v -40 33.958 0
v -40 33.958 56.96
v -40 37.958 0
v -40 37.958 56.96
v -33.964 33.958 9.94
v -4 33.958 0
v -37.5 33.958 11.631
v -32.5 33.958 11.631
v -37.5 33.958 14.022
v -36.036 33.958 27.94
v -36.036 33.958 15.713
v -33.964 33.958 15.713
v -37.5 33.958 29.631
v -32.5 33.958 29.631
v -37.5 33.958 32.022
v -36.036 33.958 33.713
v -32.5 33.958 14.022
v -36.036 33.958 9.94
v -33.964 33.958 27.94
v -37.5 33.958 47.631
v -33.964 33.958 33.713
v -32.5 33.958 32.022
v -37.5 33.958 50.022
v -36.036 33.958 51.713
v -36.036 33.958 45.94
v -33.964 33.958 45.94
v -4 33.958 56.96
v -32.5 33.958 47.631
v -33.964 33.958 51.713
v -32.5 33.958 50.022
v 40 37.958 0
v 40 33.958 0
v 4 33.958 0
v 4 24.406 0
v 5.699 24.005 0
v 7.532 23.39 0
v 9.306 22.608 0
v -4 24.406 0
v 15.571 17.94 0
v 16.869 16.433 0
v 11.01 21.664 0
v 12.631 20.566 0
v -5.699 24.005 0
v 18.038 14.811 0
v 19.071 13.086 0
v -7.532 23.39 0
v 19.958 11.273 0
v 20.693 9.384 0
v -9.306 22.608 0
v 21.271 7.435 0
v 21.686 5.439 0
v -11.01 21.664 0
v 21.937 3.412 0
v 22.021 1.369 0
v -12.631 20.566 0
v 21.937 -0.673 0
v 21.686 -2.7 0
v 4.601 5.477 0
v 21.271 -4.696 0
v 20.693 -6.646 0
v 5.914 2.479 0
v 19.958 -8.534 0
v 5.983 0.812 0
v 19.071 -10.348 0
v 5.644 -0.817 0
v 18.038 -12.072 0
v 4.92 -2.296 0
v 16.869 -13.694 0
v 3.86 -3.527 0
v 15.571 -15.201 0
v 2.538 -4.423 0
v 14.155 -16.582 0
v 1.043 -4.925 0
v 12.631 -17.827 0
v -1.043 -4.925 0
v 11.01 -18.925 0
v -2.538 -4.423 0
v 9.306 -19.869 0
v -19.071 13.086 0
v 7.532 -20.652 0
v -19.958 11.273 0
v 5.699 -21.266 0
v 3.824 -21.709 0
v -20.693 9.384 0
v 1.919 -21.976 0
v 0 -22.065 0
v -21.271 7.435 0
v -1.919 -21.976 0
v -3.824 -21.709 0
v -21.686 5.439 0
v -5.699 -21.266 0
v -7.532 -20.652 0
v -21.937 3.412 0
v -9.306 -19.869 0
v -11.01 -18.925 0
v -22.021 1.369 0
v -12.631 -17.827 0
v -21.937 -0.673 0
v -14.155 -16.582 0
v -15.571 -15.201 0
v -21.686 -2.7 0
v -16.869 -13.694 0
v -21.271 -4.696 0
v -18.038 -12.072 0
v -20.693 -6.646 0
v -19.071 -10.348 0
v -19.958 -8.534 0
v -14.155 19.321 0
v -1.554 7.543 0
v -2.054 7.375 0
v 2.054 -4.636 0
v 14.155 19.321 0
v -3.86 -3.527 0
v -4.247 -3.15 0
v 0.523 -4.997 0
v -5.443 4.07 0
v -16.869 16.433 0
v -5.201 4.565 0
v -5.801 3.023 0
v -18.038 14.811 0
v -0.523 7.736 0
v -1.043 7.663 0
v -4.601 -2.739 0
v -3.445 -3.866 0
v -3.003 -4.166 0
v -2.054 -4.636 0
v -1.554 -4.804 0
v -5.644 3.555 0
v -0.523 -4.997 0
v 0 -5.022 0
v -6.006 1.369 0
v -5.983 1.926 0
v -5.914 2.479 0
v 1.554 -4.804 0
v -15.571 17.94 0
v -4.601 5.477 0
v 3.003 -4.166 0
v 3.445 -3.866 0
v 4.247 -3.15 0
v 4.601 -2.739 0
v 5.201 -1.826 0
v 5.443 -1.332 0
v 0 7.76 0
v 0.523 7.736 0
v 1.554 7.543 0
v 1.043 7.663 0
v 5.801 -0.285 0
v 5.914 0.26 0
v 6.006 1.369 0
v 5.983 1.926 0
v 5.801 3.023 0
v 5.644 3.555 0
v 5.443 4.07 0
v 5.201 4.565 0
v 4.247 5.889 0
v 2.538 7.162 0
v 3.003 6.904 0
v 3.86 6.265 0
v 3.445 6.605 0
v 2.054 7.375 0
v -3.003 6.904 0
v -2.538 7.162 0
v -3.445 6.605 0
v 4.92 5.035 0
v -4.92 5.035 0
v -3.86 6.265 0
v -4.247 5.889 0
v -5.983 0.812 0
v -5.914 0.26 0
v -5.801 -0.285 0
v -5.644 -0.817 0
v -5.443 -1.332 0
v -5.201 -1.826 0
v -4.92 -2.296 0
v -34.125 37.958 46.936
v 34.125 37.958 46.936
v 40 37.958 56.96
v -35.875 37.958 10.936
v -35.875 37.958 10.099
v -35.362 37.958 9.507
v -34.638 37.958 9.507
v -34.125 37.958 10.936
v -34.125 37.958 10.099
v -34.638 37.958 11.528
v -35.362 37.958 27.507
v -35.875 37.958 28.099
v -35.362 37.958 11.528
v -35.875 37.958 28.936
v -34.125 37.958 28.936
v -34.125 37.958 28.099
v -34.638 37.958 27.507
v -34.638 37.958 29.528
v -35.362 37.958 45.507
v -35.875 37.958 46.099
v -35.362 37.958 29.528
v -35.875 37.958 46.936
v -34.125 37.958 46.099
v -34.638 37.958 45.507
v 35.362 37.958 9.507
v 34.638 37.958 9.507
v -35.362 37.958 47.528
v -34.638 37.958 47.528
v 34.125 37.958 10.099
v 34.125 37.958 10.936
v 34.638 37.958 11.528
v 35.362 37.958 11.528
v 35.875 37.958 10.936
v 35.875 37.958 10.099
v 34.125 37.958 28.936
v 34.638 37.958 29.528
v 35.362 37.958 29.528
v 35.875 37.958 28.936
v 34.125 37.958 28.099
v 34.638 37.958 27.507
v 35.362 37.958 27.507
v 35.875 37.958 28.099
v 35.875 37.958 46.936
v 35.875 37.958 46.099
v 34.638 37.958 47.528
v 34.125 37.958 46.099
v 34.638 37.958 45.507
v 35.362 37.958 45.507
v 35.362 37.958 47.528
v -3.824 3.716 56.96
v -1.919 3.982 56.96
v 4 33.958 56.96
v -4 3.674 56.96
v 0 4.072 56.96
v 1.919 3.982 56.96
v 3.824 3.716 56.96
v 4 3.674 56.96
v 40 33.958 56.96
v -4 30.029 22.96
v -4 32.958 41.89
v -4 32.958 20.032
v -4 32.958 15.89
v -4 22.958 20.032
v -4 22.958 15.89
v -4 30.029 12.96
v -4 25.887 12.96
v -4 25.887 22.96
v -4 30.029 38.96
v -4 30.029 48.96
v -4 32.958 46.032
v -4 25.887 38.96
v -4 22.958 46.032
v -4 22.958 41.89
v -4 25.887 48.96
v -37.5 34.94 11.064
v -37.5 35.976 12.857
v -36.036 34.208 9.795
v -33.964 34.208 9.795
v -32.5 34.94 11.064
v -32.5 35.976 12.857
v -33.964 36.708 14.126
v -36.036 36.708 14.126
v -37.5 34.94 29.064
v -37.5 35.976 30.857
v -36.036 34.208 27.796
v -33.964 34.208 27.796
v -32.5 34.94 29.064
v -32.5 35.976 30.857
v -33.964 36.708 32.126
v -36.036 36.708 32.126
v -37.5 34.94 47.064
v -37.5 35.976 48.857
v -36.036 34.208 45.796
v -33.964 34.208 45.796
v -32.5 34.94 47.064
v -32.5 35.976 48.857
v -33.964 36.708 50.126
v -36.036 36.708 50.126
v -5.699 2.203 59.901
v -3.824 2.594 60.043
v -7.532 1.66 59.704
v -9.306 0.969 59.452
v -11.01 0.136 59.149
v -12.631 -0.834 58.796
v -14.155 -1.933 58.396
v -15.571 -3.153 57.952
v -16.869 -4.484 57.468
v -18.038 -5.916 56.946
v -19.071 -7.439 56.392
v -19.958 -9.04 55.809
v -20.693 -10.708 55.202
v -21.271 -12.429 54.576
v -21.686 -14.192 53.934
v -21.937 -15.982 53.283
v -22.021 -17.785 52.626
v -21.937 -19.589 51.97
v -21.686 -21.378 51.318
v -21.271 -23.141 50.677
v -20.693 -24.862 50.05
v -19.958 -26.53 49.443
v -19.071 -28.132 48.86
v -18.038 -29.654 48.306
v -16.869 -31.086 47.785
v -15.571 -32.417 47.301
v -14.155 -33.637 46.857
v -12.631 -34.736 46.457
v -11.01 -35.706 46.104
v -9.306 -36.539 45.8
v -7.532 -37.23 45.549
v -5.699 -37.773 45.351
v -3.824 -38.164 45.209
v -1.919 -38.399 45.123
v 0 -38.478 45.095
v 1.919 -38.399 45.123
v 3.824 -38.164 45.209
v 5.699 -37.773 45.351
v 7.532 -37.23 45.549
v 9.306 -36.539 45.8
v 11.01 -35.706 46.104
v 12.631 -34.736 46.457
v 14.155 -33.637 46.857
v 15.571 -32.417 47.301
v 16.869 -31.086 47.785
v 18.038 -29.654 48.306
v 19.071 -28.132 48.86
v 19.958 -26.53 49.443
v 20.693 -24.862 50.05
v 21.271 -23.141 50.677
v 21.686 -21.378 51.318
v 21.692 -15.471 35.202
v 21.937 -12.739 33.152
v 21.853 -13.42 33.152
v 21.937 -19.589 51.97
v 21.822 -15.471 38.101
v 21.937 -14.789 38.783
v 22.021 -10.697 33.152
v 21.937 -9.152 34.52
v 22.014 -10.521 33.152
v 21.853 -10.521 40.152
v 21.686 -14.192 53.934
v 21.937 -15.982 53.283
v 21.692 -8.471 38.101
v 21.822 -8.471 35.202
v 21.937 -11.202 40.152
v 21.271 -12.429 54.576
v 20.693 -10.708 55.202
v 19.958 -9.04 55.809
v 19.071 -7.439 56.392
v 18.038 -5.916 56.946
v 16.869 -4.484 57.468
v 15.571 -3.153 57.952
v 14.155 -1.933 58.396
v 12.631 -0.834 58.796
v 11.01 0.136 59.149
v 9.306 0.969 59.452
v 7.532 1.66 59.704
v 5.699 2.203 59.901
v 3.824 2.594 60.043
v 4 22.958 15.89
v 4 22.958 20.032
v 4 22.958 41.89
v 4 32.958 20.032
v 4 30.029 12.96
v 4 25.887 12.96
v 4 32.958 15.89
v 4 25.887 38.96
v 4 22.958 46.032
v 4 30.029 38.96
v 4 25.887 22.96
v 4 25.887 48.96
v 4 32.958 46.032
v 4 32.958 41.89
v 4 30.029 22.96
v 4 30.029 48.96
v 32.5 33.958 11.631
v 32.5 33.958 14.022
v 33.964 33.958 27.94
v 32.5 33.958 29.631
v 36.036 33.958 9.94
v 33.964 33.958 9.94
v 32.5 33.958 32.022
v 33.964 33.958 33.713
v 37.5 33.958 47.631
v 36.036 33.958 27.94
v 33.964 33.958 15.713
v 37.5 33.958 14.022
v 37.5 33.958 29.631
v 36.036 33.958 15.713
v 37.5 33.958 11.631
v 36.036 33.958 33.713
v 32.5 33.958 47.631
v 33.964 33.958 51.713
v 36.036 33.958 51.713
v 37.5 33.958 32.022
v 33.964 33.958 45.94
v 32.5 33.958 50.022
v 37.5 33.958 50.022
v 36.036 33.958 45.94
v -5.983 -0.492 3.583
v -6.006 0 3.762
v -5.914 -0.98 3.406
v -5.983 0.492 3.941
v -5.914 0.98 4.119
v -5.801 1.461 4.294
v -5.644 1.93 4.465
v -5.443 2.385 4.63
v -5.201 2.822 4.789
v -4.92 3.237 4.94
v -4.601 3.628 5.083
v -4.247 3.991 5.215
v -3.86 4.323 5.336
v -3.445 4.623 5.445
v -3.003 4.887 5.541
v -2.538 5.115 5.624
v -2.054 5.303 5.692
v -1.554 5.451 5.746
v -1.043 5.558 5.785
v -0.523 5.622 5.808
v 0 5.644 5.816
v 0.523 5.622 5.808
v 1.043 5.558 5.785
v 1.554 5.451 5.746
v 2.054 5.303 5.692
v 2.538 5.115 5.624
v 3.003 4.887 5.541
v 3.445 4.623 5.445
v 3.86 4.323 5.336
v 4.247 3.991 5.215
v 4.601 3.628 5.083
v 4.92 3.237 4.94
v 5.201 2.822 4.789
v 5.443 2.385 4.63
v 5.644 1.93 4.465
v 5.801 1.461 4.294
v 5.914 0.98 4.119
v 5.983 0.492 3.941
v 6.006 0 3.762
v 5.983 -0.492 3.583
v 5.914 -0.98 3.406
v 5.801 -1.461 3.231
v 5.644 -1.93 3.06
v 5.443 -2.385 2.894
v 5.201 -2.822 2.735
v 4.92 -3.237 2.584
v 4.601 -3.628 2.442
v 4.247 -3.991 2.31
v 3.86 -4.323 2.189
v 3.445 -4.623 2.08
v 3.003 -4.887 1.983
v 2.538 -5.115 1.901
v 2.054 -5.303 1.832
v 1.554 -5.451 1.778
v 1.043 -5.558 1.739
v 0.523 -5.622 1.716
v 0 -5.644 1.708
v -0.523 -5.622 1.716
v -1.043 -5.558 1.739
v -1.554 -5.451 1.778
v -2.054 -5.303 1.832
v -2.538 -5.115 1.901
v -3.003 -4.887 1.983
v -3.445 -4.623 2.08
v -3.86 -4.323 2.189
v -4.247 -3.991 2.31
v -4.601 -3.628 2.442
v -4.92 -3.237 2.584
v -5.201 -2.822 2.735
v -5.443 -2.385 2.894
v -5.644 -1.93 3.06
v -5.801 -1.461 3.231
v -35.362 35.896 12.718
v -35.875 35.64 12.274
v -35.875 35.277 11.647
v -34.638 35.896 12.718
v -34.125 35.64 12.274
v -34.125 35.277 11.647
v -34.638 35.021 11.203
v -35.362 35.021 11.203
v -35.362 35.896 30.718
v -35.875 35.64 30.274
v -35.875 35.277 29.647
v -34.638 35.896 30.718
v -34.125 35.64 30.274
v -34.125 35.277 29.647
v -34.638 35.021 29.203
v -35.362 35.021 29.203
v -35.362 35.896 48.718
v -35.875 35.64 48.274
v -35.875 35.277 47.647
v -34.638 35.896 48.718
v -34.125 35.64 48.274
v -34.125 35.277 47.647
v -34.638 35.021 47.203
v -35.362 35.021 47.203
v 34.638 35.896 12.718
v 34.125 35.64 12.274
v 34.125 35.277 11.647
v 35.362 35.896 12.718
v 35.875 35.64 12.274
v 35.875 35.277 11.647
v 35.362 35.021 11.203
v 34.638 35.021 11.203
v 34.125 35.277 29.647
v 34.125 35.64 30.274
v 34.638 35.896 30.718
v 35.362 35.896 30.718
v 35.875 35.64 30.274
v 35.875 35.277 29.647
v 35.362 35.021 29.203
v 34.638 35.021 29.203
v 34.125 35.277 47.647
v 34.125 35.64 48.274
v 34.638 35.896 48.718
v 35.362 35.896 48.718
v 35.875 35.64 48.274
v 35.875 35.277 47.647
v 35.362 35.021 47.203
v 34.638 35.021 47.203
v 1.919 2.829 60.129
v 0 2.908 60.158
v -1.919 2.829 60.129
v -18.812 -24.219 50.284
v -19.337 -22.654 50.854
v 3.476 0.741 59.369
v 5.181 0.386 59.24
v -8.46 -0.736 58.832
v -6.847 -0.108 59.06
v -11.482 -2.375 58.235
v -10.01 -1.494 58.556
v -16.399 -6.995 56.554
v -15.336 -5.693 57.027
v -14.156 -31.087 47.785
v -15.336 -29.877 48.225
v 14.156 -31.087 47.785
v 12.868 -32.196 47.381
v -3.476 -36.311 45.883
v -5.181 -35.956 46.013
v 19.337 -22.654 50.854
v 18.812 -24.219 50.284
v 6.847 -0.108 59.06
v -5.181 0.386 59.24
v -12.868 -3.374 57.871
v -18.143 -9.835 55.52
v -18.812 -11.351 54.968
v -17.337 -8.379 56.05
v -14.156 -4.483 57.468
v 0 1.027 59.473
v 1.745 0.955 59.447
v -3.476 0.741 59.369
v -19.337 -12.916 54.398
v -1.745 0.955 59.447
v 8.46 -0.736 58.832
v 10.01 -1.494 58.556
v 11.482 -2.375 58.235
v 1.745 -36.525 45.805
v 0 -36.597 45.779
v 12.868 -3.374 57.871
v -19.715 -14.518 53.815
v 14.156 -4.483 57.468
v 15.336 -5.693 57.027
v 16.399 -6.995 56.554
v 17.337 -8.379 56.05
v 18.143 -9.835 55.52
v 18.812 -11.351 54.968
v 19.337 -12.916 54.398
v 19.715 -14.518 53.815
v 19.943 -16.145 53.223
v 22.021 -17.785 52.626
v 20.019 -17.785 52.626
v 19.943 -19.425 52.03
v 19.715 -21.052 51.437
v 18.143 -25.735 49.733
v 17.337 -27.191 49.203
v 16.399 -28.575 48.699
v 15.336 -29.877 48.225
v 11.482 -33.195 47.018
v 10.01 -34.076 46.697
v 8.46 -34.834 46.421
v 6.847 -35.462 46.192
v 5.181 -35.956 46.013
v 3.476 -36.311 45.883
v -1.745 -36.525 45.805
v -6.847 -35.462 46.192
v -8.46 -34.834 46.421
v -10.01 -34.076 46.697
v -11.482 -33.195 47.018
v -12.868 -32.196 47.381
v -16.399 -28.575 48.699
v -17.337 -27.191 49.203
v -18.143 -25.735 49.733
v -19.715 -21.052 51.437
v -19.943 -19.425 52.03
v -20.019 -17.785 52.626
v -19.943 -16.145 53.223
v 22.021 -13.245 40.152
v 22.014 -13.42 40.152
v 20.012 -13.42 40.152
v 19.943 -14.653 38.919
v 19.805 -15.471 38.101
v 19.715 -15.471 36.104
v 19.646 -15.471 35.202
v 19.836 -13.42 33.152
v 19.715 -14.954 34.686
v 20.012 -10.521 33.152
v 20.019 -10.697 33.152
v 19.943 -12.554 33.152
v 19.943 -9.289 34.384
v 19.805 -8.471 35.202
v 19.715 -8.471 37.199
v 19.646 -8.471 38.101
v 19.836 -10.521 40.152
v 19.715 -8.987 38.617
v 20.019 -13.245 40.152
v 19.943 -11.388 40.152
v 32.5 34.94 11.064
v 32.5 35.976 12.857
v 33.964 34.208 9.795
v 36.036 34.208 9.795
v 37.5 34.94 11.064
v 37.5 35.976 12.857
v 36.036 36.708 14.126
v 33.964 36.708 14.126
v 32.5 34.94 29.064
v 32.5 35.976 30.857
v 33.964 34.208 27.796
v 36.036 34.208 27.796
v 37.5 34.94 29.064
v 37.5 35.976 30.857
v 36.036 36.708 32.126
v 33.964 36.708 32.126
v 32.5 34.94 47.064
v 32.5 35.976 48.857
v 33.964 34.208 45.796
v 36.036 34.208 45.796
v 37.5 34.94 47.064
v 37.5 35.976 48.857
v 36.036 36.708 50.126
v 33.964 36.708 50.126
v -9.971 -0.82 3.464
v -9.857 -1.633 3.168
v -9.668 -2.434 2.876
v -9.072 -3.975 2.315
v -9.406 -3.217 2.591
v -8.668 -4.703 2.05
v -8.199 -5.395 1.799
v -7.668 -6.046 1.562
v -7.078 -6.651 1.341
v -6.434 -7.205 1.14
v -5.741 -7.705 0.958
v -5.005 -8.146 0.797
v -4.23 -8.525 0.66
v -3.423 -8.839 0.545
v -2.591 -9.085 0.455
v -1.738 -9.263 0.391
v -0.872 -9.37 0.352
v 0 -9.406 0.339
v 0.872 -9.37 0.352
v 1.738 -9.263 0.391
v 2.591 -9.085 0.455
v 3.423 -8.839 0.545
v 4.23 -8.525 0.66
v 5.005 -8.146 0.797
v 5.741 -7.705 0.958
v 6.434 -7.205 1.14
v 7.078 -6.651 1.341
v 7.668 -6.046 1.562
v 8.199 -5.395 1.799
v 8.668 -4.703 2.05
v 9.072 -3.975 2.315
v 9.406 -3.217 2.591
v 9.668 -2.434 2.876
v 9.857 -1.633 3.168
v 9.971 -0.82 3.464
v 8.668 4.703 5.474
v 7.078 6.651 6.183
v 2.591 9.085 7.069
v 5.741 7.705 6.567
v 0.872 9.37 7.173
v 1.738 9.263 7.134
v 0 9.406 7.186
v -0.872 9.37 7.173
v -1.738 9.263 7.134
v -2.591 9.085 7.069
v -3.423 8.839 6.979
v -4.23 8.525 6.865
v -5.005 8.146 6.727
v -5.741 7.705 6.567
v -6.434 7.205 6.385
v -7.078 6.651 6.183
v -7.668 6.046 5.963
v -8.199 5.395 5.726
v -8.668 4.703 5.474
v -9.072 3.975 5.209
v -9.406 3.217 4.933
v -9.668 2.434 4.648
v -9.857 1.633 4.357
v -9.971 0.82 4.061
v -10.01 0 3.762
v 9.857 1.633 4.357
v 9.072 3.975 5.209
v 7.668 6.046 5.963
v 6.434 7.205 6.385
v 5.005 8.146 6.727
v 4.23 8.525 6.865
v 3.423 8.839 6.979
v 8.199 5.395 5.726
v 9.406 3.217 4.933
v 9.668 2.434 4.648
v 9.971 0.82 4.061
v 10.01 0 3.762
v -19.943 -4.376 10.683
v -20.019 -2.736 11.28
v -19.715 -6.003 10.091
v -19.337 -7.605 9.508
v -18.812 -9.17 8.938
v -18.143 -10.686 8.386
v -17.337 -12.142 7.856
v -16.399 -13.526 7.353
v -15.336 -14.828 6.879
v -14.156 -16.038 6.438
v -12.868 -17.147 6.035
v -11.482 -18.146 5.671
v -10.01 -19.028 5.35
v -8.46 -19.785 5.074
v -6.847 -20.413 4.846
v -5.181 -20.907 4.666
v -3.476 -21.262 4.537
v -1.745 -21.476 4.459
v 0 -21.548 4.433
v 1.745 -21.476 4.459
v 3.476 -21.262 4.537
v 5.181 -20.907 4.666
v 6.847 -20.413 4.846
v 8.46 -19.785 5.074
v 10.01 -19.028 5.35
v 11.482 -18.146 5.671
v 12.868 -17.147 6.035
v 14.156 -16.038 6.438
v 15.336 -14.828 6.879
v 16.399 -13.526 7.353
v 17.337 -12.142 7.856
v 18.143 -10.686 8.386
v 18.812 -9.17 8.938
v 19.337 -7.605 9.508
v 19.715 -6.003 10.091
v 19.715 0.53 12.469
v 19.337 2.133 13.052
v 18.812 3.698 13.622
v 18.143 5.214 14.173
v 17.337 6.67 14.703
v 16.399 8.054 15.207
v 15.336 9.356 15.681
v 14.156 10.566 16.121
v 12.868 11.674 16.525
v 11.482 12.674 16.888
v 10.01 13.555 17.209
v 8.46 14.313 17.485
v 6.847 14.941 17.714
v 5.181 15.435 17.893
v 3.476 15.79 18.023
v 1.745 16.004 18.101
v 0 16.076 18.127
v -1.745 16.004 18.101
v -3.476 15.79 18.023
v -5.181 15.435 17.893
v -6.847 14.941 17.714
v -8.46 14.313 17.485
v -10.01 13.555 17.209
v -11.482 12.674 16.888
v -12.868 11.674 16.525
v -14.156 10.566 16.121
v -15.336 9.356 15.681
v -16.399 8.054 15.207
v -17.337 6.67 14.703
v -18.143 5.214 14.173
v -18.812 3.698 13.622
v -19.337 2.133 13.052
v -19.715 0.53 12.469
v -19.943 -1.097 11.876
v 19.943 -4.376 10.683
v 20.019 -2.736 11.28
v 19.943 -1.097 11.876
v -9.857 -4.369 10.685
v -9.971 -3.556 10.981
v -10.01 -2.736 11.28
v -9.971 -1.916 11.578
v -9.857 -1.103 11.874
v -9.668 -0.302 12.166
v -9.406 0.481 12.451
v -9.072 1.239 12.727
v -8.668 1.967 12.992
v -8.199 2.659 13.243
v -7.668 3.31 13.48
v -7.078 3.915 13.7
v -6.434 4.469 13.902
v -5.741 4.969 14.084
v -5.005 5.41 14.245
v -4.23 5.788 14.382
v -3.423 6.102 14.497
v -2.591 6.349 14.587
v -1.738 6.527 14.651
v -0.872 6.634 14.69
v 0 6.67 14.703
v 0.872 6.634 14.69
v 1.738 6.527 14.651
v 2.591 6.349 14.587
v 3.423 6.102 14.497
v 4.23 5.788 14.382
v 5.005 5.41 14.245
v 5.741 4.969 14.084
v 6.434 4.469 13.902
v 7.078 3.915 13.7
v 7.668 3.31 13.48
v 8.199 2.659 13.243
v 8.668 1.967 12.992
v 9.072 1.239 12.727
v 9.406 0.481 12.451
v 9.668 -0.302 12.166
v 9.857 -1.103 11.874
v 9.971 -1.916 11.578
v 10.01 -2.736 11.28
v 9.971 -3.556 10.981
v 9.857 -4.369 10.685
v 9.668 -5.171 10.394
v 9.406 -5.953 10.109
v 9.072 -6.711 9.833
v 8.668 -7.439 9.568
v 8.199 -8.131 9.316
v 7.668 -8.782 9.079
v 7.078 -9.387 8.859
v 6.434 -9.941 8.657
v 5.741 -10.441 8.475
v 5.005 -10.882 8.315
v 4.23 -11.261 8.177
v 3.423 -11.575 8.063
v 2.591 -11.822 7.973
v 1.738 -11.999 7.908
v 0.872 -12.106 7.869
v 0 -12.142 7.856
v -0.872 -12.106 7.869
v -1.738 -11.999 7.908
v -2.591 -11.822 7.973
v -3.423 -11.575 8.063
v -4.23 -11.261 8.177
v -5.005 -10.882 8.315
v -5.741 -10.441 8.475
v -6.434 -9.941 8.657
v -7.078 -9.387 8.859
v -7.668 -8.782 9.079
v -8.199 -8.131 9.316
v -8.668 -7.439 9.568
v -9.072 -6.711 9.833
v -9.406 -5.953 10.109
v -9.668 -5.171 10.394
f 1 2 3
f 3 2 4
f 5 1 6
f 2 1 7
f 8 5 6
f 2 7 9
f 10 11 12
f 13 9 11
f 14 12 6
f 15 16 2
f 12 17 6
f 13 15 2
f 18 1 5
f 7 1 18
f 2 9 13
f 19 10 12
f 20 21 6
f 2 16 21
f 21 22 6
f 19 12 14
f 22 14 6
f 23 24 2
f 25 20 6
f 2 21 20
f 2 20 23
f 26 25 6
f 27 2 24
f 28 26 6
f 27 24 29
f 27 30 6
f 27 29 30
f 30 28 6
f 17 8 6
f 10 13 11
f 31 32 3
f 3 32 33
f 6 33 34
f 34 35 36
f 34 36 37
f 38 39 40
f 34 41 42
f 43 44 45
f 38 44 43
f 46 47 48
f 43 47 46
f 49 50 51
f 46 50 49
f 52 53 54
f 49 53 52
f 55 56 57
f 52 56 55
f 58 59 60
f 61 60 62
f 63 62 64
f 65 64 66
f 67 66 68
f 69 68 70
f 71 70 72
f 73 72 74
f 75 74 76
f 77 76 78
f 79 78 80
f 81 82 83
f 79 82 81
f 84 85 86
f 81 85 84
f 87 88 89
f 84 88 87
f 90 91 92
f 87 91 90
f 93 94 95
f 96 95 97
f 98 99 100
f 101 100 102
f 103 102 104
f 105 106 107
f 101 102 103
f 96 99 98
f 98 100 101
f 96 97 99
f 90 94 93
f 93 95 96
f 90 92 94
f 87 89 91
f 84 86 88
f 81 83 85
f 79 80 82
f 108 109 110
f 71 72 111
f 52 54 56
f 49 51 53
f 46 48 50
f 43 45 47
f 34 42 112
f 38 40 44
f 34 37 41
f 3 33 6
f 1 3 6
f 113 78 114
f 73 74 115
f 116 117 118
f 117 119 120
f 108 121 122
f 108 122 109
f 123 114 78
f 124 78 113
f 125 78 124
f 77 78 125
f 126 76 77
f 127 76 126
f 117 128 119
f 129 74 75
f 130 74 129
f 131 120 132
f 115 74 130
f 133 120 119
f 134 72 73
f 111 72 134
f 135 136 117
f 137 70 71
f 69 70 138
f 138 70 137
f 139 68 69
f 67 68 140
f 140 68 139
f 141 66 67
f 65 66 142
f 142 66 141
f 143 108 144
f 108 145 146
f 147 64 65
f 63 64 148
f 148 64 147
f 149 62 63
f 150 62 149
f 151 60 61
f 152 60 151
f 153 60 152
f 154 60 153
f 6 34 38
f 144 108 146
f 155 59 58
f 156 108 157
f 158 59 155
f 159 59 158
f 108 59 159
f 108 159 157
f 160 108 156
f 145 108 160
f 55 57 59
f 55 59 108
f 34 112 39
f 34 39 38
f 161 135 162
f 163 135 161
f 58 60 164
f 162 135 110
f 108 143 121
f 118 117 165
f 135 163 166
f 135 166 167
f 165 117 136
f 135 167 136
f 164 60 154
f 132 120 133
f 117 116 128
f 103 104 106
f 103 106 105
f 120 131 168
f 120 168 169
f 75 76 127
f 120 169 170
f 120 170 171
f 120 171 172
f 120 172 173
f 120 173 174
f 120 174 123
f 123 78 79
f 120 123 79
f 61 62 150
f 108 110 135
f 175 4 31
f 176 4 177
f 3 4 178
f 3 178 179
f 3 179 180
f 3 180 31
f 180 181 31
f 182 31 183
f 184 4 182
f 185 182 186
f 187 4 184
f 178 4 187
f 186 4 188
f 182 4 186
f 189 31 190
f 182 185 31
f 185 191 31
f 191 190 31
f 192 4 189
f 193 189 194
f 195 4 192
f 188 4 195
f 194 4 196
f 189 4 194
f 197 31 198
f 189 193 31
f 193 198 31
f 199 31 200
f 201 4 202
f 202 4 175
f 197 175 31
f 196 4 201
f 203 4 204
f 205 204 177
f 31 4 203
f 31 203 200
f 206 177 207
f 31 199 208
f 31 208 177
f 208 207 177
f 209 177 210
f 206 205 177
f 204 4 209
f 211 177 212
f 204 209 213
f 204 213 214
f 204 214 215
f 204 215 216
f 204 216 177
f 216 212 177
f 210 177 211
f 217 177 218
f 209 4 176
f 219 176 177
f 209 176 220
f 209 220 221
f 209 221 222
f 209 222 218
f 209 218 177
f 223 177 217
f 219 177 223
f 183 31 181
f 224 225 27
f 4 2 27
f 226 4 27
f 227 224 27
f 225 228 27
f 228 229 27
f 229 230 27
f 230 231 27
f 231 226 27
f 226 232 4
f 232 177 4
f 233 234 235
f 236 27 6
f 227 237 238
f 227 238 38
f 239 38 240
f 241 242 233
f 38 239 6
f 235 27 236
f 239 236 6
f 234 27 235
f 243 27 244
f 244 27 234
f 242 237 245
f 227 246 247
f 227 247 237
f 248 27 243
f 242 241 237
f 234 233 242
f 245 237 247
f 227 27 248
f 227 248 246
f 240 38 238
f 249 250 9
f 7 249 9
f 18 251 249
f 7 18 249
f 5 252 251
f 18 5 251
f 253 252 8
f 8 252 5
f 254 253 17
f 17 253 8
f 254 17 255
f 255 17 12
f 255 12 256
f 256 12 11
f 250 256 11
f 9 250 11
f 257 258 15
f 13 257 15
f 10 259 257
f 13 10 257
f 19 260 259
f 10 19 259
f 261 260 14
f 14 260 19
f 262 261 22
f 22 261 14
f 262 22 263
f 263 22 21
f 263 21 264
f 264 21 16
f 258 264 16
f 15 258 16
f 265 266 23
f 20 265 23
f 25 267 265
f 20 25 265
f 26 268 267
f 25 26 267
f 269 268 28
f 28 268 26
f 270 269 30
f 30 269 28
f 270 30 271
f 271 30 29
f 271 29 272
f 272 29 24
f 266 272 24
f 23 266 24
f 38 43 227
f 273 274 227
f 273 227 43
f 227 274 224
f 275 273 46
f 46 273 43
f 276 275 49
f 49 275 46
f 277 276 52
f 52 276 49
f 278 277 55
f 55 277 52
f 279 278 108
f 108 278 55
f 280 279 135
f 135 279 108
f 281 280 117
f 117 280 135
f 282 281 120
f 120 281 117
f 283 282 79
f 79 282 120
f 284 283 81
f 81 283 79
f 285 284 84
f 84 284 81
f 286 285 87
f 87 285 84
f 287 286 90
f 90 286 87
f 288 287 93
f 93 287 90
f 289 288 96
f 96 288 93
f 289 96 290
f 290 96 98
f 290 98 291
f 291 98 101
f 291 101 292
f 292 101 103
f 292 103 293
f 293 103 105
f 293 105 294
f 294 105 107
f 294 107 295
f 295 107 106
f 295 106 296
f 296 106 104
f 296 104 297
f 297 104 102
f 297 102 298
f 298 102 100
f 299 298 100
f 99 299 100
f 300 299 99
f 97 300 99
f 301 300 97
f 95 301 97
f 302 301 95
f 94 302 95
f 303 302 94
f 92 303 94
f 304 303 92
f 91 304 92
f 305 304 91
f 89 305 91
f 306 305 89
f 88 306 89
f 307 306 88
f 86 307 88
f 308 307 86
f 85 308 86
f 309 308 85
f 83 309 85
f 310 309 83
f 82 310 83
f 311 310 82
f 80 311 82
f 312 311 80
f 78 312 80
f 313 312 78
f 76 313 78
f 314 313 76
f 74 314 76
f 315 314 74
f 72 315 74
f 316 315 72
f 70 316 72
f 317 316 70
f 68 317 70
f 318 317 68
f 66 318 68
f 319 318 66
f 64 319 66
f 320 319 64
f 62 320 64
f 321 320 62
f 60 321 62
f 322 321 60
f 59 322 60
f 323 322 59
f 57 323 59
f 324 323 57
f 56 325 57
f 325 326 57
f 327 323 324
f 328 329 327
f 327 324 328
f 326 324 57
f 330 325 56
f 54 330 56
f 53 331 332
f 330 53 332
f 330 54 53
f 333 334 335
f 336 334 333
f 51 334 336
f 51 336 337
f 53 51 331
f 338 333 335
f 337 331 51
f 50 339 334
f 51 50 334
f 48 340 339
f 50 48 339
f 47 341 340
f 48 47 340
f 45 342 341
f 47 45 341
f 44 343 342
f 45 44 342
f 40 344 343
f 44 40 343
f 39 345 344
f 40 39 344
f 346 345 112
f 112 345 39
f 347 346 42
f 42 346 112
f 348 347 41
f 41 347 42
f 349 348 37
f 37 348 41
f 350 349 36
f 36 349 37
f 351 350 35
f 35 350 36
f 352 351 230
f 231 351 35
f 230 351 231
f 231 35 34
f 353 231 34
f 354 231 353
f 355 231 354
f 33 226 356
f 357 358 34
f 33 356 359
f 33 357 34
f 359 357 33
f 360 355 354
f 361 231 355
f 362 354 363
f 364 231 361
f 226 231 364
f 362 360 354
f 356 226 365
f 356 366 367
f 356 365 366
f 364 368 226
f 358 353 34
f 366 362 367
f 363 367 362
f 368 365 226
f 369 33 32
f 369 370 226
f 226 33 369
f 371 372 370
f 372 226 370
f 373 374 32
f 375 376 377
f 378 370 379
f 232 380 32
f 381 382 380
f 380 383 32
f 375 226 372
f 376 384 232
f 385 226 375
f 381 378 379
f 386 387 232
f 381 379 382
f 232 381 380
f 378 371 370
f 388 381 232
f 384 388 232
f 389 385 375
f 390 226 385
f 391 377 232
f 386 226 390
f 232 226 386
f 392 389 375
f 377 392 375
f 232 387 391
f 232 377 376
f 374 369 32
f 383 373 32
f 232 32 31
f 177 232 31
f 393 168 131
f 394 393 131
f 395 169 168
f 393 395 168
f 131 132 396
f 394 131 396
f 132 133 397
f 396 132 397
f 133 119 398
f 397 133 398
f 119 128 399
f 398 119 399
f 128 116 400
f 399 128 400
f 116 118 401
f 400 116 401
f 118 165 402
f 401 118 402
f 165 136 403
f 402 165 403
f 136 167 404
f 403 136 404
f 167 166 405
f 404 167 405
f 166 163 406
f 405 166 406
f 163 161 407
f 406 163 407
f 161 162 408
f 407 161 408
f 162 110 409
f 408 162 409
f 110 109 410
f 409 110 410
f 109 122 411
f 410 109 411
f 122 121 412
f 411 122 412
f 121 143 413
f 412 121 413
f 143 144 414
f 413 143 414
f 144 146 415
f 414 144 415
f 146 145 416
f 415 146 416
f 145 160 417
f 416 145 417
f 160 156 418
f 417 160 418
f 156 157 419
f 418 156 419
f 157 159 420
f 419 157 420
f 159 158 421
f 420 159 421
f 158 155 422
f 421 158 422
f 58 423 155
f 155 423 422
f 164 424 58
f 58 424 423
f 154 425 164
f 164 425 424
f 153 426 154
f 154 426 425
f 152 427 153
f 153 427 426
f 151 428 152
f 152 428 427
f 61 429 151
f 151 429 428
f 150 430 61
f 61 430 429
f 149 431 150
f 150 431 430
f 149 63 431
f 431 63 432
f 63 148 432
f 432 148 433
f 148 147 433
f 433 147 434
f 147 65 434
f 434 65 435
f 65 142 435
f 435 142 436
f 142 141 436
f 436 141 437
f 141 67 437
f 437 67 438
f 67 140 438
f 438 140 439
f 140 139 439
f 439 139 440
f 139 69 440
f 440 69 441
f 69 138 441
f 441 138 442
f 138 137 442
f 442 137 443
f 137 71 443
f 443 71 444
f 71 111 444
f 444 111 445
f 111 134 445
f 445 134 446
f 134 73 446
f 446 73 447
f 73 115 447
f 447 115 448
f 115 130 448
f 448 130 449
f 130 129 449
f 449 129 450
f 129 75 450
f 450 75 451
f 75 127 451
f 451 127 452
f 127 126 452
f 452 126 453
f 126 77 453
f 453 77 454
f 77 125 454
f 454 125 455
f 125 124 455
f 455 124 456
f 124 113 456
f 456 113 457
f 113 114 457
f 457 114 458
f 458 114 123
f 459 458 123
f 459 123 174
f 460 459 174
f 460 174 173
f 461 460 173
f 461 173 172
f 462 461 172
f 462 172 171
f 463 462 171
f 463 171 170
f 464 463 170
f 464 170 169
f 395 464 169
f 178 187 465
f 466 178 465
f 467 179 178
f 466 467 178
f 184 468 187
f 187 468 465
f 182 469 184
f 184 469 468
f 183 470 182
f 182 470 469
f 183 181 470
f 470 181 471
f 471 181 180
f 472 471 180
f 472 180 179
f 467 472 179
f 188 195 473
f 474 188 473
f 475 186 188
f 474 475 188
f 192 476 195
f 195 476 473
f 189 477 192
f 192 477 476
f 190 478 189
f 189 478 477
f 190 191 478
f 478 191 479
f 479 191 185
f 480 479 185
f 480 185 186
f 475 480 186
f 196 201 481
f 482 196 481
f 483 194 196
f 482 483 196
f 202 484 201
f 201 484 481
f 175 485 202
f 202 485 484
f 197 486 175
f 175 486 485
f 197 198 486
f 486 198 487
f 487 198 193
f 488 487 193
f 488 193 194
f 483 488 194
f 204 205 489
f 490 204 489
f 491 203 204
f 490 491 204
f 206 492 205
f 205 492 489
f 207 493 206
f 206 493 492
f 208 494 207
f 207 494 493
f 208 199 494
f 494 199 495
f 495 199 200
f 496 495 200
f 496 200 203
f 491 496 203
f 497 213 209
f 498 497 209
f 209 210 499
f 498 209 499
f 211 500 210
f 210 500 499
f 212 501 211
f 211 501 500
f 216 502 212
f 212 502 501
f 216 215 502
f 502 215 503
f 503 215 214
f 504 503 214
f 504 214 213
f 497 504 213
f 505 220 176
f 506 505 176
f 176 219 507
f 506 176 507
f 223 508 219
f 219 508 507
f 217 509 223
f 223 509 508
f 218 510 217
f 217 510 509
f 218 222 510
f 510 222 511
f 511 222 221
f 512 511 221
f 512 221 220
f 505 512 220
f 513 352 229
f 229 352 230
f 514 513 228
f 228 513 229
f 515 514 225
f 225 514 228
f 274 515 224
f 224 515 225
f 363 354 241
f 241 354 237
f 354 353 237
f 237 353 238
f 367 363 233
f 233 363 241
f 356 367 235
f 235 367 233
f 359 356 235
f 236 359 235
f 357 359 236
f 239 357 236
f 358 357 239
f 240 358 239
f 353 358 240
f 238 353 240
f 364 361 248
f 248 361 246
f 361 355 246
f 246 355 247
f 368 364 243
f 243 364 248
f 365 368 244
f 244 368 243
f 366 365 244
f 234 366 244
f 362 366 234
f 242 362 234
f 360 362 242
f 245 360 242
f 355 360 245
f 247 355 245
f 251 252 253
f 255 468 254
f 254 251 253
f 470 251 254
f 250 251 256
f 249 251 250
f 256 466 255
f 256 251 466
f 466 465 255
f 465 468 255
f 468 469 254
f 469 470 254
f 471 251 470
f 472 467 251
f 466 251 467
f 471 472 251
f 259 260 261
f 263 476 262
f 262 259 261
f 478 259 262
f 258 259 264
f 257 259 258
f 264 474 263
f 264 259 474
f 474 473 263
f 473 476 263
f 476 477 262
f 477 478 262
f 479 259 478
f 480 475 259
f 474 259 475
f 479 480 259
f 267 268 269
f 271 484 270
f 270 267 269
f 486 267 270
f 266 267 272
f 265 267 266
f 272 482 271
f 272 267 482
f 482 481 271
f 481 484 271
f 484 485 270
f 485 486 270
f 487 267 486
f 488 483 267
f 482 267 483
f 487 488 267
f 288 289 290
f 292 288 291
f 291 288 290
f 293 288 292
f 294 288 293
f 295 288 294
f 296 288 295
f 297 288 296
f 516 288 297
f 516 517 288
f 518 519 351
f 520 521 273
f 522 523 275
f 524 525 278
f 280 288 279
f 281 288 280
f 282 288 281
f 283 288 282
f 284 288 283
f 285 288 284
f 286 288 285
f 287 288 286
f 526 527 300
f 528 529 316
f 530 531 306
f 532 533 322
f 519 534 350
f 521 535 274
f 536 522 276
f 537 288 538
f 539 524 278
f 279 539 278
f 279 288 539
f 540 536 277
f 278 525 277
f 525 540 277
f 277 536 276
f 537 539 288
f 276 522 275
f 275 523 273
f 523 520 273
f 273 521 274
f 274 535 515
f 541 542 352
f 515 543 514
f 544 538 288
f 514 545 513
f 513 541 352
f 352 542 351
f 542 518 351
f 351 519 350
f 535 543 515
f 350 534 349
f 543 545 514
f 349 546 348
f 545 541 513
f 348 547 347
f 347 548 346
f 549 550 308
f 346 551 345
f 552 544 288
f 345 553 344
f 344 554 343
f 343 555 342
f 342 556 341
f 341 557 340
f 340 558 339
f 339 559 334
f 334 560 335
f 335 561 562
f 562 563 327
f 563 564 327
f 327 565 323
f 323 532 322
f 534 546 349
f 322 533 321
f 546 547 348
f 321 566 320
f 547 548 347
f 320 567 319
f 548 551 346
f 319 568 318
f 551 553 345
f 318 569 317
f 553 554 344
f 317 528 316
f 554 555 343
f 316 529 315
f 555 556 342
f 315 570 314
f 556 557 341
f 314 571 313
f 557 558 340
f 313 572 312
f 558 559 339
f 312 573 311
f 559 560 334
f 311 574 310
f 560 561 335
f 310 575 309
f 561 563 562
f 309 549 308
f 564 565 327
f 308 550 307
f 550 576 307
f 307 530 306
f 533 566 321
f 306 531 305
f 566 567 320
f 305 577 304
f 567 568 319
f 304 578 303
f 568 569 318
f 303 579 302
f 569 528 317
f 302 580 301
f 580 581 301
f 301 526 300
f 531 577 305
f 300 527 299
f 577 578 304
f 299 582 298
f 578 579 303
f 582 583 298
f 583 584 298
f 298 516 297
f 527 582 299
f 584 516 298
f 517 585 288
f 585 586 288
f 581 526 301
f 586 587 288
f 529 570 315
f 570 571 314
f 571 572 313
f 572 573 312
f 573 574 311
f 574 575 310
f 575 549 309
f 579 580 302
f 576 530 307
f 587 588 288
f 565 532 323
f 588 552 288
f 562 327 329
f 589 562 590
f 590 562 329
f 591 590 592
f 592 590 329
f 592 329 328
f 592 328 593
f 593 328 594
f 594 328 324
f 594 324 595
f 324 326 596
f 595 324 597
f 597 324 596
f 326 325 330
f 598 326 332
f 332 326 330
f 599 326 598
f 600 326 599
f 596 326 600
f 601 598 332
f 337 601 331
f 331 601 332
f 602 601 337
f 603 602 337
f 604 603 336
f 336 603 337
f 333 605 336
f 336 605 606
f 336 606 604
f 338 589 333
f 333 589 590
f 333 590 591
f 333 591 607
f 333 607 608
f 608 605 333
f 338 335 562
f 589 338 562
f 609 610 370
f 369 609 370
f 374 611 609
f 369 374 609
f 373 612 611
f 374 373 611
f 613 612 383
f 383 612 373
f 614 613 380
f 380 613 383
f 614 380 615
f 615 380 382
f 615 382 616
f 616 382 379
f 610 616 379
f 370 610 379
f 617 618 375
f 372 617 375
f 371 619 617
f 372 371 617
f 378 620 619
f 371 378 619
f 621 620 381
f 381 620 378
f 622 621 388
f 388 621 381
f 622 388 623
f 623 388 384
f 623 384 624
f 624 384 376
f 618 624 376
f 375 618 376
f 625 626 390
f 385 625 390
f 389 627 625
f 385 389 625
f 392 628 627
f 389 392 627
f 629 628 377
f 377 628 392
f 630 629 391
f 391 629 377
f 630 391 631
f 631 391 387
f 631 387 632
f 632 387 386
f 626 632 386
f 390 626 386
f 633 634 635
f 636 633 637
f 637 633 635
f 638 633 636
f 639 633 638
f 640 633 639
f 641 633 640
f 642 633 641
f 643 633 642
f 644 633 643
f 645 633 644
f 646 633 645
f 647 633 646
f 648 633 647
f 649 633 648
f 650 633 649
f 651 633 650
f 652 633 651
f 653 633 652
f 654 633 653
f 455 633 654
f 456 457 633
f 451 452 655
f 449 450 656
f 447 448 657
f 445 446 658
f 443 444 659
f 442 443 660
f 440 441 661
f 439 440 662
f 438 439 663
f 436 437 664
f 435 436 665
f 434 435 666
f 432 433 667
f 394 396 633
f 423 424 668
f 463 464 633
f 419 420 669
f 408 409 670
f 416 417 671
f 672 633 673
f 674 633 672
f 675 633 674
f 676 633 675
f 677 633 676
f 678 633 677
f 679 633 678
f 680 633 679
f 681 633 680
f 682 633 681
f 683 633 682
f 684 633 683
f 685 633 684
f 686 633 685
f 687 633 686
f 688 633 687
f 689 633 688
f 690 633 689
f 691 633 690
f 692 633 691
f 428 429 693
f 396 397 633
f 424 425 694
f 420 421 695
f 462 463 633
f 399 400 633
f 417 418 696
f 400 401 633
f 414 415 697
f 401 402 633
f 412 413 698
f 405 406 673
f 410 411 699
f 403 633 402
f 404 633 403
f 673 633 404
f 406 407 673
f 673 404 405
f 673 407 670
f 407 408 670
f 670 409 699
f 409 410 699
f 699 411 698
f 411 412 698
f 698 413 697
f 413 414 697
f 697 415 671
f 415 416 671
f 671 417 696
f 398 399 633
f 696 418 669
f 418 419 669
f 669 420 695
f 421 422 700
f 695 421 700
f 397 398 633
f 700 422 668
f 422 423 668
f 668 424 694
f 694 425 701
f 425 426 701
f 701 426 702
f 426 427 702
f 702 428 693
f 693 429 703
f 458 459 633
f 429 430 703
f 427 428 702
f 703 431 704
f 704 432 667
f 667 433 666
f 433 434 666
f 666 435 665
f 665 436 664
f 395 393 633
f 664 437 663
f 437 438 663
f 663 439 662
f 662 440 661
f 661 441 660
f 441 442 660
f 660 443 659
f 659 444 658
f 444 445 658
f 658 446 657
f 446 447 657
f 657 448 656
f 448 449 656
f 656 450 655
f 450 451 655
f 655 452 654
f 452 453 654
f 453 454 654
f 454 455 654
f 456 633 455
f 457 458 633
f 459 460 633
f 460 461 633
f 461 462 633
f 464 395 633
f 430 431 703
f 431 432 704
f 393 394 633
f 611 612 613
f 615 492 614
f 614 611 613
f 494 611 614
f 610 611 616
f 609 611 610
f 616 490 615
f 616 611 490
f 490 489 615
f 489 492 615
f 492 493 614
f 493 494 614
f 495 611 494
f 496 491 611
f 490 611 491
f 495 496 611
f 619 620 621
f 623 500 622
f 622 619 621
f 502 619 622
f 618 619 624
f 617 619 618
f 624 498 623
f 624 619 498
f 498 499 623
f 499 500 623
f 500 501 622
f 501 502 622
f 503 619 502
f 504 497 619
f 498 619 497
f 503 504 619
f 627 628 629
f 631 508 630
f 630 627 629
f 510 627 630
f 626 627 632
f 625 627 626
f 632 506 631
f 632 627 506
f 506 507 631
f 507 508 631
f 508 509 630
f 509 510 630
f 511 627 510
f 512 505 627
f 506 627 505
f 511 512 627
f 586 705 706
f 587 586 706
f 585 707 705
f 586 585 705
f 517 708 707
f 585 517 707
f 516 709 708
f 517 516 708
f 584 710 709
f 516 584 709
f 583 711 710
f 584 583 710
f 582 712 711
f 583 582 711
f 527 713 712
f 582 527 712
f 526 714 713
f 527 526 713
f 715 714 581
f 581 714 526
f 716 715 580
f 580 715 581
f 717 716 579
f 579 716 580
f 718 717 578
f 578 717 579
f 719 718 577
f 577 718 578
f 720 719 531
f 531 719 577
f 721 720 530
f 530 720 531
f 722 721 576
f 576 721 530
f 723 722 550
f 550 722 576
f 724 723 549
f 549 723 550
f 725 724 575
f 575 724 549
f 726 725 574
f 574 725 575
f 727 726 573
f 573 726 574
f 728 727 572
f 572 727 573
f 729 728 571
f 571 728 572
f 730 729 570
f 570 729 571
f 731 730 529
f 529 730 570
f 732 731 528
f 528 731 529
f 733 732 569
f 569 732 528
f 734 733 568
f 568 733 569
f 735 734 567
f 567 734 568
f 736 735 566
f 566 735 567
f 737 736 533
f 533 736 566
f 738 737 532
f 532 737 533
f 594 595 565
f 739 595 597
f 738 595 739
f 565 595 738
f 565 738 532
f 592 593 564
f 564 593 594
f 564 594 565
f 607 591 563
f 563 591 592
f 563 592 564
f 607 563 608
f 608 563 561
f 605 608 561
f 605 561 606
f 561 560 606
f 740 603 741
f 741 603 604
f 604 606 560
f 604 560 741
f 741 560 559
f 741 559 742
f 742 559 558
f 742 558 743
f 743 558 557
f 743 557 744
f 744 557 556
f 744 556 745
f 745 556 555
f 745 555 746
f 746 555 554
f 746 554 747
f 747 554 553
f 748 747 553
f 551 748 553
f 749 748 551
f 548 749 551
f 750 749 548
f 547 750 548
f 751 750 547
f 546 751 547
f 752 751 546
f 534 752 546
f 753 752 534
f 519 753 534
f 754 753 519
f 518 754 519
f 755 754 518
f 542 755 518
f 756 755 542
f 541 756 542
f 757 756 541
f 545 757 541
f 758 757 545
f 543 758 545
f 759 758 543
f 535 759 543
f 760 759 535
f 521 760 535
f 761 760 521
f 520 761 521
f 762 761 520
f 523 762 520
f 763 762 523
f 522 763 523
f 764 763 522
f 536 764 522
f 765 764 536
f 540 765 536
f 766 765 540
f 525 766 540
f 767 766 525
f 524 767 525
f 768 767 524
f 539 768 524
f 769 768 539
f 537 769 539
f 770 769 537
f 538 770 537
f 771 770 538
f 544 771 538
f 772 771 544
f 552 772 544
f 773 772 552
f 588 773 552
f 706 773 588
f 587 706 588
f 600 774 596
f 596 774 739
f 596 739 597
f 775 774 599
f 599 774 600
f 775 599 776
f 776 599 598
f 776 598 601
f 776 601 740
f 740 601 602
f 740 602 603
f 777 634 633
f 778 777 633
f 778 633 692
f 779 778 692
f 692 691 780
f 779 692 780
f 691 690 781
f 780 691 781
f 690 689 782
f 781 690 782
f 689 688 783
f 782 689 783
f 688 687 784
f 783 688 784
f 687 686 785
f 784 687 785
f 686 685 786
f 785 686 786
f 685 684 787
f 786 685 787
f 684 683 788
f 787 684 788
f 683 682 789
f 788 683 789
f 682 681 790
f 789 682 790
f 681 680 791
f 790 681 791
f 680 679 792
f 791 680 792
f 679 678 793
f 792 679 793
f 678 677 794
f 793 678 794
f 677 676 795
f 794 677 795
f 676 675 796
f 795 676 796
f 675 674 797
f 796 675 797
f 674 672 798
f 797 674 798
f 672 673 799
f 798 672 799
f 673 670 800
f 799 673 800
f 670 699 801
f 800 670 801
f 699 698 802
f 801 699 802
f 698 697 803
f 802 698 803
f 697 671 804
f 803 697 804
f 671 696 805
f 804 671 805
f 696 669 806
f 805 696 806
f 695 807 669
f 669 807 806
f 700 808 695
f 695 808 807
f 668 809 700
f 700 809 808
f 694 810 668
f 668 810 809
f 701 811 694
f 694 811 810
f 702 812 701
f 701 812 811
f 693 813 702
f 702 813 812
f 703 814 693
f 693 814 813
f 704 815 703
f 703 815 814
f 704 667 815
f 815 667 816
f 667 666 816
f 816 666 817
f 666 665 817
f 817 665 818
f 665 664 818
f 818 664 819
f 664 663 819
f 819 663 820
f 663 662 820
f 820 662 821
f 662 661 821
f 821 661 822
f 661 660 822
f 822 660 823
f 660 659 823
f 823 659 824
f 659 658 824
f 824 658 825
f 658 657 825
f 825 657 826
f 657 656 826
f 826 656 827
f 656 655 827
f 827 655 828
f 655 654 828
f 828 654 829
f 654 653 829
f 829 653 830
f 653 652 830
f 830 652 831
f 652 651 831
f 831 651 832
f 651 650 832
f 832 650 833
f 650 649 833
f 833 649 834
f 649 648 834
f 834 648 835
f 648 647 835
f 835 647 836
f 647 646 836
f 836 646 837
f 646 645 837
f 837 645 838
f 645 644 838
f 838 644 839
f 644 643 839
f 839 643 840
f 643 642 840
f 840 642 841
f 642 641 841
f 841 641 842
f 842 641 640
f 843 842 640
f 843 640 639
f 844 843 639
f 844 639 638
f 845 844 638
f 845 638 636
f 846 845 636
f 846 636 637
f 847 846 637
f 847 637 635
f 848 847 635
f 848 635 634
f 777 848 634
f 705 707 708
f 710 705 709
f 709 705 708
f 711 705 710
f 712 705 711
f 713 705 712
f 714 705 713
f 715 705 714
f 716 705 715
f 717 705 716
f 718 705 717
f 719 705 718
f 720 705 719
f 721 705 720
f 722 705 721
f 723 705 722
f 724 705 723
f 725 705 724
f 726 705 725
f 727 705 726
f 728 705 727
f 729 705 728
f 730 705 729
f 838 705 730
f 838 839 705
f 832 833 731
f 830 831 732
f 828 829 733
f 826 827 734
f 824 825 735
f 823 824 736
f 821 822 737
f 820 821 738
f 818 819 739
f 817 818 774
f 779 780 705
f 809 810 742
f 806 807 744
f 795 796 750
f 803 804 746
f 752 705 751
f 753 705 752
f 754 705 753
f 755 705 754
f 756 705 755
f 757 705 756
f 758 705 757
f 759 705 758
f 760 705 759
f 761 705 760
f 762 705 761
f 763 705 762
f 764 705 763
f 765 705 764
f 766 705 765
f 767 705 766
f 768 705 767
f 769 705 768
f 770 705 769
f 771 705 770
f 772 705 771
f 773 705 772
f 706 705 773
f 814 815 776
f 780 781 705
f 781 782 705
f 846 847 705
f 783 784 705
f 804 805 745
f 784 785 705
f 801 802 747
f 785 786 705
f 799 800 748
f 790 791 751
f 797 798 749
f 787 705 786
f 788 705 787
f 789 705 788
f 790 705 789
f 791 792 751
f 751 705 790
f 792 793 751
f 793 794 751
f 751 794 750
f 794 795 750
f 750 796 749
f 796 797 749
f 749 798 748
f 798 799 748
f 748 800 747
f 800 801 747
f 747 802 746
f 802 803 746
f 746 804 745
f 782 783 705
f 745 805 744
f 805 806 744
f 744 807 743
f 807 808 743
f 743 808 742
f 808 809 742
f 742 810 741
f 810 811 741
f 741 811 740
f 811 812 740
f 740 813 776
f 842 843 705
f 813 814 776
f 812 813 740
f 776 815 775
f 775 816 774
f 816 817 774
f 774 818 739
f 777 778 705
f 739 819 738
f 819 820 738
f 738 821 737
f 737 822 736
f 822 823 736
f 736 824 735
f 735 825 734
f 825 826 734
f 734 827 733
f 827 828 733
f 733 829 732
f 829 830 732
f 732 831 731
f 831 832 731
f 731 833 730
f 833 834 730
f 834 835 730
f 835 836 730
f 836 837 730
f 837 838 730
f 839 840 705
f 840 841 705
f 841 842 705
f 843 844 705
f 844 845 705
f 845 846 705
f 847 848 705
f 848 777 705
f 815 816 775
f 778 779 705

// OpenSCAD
left = -1;
right = 1;
top = -1;
bottom = 1;

build_x = 180;
build_y = 180;
build_z = 180;

print_layer_height = 0.2;
extrusion_width = 0.5;
resolution = 72;

function accurate_diam(diam,sides) = 1 / cos(180/sides) / 2 * diam;

module hole(diam,len,sides=8) {
  cylinder(r=accurate_diam(diam,sides),h=len,center=true,$fn=sides);
}
lamp_tilt_angle = 20;
wall_thickness = 2;

insert_diam = 40;
insert_height = 70;
insert_bottom_diam = 20;
insert_bottom_height = 8;
insert_bottom_hole = 12;
insert_threaded_height = 23;

insert_mount_diam   = insert_diam + wall_thickness * 2;
insert_mount_height = insert_height - insert_threaded_height + 5;

switch_dist_from_top = 35;
switch_shaft_diam = 7;
switch_shaft_len = 60;

bulb_diam = 50;
bulb_height_above_socket = 85;
bulb_heat_clearance = 30;

shade_height      = bulb_height_above_socket + 20;
shade_bottom_diam = insert_mount_diam + bulb_heat_clearance/2;
shade_top_diam    = shade_bottom_diam + shade_height - 2;
shade_wall_thickness = extrusion_width*2;

wall_brace_thickness = wall_thickness*4;
wall_plate_width     = 80;
wall_plate_thickness = wall_thickness*2;

dist_from_wall = 20;

nail_diam = 1.75;
nail_head_diam = 5;
nail_angle = 60;

module insert() {
  main_height = insert_height - insert_bottom_height;

  translate([0,0,insert_height]) {
    translate([0,0,-switch_dist_from_top]) {
      rotate([0,90,0]) {
        translate([0,0,switch_shaft_len/2]) {
          rotate([0,0,22.5-lamp_tilt_angle]) {
            hole(switch_shaft_diam,switch_shaft_len,8);
          }
        }
      }
    }

    translate([0,0,-main_height/2]) {
      hole(insert_diam,main_height,resolution);

      translate([0,0,-main_height/2]) {
        hole(insert_bottom_diam,insert_bottom_height*2,resolution);
        hole(insert_bottom_hole,main_height*2-0.05,resolution);
      }
    }
  }
}

module nail_hole() {
  hole_height = 20;
  head_hole_height = hole_height/2;

  rotate([nail_angle,0,0]) {
    rotate([0,0,22.5]) {
      hole(nail_diam,hole_height,8);

      translate([0,0,head_hole_height/2]) {
        hole(nail_head_diam,head_hole_height,8);
      }
    }
  }
}

module insert_mount() {
  material_below_insert = 0;

  overall_height = insert_mount_height+material_below_insert;

  anchor_depth = (insert_mount_diam-insert_diam)/2-1;

  module translate_wall_anchor() {
    translate([0,insert_mount_diam/2-anchor_depth/2+tan(lamp_tilt_angle)*insert_mount_diam/4],0) {
      rotate([-lamp_tilt_angle,0,0]) {
        translate([0,dist_from_wall-(tan(lamp_tilt_angle)*insert_mount_diam/2),-(sin(lamp_tilt_angle)*insert_mount_diam/2)]) {
          children();
        }
      }
    }
  }

  module body() {
    hole(insert_mount_diam, overall_height*2, resolution);

    overall_depth = insert_mount_diam/2+dist_from_wall;

    translate_wall_anchor() {
      cube([wall_brace_thickness,anchor_depth,overall_height*2],center=true);

      translate([0,-overall_depth/2,0]) {
        cube([wall_brace_thickness,overall_depth,overall_height*2],center=true);
      }
    }

    translate_wall_anchor() {
      cube([wall_plate_width,wall_plate_thickness,overall_height*2],center=true);
    }
  }

  module holes() {
    translate([0,0,material_below_insert]) {
      # insert();

      translate([0,0,insert_height+bulb_height_above_socket/2 + 1]) {
        % cylinder(r=bulb_diam/2,h=bulb_height_above_socket,center=true);
      }
    }

    translate_wall_anchor() {
      for(side=[top,0,bottom]) {
        for(end=[left,right]) {
          # translate([(wall_plate_width/2-5)*end,-anchor_depth/2,overall_height/2-1+(overall_height/2-8)*side]) {
            nail_hole();
          }
        }
      }

      // route the cord through this in case the cord gets pulled
      for (i=[1,3]) {
        translate([0,-wall_plate_thickness/2-6,overall_height/4*i]) {
          rotate([0,90,0]) {
            rotate([0,0,22.5]) {
              hole(10,40,8);
            }
          }
        }
      }
    }
  }

  difference() {
    body();
    holes();
  }
}

module shade() {
  module body() {
    hull() {
      hole(shade_bottom_diam,2,resolution);

      translate([0,0,shade_height]) {
        hole(shade_top_diam,2,resolution);
      }
    }
  }

  module holes() {
    hull() {
      hole(shade_bottom_diam,2,resolution);

      translate([0,0,shade_height]) {
        hole(shade_top_diam,2,resolution);
      }
    }
  }

  difference() {
    //body();
    //holes();
  }
}

module wall_hanging_lamp() {
  module body() {
    translate([0,0,sin(lamp_tilt_angle)*insert_mount_diam/4]) {
      rotate([lamp_tilt_angle,0,0]) {
        insert_mount();

        translate([0,0,insert_height]) {
          % shade();
        }
      }
    }
  }

  module holes() {
    translate([0,-tan(lamp_tilt_angle)*100,build_z/2]) {
      % cube([build_x,build_y,build_z],center=true);
    }
    translate([0,0,-50]) {
      cube([400,400,100],center=true);
    }
  }

  difference() { body();
    holes();
  }
}

wall_hanging_lamp();
